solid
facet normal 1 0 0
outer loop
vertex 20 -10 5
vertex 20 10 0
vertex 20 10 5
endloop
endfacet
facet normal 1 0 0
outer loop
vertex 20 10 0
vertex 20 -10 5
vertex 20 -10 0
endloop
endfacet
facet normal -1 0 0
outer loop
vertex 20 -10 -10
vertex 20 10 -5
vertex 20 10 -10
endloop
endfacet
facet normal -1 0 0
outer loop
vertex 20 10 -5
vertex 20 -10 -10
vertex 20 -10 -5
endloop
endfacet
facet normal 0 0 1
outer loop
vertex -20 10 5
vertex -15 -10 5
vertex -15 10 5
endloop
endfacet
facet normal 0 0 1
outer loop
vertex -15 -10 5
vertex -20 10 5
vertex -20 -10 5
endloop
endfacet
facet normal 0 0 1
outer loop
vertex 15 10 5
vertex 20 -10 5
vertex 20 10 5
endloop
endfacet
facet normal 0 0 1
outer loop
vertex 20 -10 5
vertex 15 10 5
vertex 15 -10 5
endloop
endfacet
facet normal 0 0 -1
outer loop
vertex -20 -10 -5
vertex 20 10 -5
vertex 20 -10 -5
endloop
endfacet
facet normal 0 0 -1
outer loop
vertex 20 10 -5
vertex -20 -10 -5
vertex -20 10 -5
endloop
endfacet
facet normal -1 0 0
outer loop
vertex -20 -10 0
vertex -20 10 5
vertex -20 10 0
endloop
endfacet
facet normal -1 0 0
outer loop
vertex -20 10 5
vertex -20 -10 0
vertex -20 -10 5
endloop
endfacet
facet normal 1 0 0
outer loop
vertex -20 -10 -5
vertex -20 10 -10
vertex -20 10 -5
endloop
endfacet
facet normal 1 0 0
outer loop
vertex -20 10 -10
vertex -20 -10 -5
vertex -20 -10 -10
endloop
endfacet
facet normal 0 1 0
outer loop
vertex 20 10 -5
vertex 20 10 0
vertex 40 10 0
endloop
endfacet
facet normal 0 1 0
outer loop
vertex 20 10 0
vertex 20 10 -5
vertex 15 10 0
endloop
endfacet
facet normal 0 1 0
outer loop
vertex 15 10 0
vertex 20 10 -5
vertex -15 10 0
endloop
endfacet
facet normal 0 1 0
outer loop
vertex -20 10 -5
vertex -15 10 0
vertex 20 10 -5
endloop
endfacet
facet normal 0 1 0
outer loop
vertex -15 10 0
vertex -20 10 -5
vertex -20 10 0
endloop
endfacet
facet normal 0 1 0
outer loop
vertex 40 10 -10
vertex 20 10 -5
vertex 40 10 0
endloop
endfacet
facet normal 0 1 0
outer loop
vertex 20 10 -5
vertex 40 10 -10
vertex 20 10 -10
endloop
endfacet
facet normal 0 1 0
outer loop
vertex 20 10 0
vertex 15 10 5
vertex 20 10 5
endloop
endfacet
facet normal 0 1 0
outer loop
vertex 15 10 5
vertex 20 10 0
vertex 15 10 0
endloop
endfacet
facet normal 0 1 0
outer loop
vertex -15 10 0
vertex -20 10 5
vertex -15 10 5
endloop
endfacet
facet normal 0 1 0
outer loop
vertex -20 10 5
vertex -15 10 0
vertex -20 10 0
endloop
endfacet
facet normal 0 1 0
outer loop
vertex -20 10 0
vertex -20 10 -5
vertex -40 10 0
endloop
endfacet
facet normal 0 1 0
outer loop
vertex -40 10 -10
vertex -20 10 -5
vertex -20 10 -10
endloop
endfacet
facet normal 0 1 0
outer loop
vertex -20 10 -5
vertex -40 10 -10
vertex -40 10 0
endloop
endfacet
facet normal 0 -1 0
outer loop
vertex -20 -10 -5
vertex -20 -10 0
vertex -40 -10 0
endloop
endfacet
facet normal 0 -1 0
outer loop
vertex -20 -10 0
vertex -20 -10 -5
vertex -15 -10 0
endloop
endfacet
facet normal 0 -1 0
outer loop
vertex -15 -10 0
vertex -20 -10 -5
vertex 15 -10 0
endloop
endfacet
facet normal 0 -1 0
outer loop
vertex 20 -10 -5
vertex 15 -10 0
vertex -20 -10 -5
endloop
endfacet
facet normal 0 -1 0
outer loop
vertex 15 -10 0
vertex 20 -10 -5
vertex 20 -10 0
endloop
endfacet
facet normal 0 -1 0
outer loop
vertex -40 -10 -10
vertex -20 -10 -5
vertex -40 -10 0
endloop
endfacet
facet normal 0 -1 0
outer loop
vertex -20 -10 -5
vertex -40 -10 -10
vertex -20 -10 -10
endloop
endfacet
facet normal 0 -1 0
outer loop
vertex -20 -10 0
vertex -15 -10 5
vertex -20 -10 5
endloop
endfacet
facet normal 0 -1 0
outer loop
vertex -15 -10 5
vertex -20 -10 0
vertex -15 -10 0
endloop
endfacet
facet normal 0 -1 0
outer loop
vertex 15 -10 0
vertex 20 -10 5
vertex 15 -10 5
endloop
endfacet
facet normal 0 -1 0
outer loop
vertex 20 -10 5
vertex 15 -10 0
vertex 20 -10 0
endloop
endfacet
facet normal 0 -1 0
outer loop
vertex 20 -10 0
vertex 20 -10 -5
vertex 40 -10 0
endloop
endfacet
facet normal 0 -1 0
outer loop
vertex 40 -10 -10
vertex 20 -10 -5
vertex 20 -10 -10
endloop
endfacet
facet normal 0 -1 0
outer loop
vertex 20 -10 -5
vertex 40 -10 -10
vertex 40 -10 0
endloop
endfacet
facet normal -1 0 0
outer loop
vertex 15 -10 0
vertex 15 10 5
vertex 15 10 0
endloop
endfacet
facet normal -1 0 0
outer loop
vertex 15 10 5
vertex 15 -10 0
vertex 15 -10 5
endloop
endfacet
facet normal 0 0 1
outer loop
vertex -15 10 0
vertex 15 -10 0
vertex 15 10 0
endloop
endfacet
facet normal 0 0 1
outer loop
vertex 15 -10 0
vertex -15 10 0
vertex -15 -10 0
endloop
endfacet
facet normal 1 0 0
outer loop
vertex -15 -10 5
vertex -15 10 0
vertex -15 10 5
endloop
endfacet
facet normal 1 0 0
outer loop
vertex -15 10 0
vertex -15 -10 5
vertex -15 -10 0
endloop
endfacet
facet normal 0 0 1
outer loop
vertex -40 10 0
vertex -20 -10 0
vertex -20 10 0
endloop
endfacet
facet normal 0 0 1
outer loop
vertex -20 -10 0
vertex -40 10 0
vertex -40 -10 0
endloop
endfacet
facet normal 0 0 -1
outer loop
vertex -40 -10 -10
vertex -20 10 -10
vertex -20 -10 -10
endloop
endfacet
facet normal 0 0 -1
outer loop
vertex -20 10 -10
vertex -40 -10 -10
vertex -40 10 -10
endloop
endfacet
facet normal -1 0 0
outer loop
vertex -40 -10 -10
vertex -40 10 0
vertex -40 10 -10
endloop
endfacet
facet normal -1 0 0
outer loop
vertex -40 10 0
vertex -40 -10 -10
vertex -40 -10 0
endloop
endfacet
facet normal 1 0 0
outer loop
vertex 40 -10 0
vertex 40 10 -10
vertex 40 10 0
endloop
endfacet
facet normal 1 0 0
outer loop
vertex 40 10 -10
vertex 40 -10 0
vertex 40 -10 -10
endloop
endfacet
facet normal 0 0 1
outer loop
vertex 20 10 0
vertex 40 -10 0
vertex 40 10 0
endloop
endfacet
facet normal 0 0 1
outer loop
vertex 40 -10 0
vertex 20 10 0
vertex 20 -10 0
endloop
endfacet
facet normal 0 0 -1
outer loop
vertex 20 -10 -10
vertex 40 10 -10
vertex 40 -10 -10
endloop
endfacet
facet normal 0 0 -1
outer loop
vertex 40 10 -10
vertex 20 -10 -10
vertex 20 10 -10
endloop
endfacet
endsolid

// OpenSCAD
// Define dimensions for the components
module central_block() {
    difference() {
        // Base block
        cube([40, 20, 10], center = true);
        // Cutout for stepped profile
        translate([0, 0, 5])
            cube([30, 20, 10], center = true);
    }
}

module side_block() {
    // Side block dimensions
    cube([20, 20, 10], center = true);
}

// Assemble the model
module flexible_coupling() {
    // Layer 2: Central block
    central_block();

    // Layer 1: Side blocks
    translate([-30, 0, -5]) // Position left side block
        side_block();
    translate([30, 0, -5]) // Position right side block
        side_block();
}

// Render the model
flexible_coupling();
